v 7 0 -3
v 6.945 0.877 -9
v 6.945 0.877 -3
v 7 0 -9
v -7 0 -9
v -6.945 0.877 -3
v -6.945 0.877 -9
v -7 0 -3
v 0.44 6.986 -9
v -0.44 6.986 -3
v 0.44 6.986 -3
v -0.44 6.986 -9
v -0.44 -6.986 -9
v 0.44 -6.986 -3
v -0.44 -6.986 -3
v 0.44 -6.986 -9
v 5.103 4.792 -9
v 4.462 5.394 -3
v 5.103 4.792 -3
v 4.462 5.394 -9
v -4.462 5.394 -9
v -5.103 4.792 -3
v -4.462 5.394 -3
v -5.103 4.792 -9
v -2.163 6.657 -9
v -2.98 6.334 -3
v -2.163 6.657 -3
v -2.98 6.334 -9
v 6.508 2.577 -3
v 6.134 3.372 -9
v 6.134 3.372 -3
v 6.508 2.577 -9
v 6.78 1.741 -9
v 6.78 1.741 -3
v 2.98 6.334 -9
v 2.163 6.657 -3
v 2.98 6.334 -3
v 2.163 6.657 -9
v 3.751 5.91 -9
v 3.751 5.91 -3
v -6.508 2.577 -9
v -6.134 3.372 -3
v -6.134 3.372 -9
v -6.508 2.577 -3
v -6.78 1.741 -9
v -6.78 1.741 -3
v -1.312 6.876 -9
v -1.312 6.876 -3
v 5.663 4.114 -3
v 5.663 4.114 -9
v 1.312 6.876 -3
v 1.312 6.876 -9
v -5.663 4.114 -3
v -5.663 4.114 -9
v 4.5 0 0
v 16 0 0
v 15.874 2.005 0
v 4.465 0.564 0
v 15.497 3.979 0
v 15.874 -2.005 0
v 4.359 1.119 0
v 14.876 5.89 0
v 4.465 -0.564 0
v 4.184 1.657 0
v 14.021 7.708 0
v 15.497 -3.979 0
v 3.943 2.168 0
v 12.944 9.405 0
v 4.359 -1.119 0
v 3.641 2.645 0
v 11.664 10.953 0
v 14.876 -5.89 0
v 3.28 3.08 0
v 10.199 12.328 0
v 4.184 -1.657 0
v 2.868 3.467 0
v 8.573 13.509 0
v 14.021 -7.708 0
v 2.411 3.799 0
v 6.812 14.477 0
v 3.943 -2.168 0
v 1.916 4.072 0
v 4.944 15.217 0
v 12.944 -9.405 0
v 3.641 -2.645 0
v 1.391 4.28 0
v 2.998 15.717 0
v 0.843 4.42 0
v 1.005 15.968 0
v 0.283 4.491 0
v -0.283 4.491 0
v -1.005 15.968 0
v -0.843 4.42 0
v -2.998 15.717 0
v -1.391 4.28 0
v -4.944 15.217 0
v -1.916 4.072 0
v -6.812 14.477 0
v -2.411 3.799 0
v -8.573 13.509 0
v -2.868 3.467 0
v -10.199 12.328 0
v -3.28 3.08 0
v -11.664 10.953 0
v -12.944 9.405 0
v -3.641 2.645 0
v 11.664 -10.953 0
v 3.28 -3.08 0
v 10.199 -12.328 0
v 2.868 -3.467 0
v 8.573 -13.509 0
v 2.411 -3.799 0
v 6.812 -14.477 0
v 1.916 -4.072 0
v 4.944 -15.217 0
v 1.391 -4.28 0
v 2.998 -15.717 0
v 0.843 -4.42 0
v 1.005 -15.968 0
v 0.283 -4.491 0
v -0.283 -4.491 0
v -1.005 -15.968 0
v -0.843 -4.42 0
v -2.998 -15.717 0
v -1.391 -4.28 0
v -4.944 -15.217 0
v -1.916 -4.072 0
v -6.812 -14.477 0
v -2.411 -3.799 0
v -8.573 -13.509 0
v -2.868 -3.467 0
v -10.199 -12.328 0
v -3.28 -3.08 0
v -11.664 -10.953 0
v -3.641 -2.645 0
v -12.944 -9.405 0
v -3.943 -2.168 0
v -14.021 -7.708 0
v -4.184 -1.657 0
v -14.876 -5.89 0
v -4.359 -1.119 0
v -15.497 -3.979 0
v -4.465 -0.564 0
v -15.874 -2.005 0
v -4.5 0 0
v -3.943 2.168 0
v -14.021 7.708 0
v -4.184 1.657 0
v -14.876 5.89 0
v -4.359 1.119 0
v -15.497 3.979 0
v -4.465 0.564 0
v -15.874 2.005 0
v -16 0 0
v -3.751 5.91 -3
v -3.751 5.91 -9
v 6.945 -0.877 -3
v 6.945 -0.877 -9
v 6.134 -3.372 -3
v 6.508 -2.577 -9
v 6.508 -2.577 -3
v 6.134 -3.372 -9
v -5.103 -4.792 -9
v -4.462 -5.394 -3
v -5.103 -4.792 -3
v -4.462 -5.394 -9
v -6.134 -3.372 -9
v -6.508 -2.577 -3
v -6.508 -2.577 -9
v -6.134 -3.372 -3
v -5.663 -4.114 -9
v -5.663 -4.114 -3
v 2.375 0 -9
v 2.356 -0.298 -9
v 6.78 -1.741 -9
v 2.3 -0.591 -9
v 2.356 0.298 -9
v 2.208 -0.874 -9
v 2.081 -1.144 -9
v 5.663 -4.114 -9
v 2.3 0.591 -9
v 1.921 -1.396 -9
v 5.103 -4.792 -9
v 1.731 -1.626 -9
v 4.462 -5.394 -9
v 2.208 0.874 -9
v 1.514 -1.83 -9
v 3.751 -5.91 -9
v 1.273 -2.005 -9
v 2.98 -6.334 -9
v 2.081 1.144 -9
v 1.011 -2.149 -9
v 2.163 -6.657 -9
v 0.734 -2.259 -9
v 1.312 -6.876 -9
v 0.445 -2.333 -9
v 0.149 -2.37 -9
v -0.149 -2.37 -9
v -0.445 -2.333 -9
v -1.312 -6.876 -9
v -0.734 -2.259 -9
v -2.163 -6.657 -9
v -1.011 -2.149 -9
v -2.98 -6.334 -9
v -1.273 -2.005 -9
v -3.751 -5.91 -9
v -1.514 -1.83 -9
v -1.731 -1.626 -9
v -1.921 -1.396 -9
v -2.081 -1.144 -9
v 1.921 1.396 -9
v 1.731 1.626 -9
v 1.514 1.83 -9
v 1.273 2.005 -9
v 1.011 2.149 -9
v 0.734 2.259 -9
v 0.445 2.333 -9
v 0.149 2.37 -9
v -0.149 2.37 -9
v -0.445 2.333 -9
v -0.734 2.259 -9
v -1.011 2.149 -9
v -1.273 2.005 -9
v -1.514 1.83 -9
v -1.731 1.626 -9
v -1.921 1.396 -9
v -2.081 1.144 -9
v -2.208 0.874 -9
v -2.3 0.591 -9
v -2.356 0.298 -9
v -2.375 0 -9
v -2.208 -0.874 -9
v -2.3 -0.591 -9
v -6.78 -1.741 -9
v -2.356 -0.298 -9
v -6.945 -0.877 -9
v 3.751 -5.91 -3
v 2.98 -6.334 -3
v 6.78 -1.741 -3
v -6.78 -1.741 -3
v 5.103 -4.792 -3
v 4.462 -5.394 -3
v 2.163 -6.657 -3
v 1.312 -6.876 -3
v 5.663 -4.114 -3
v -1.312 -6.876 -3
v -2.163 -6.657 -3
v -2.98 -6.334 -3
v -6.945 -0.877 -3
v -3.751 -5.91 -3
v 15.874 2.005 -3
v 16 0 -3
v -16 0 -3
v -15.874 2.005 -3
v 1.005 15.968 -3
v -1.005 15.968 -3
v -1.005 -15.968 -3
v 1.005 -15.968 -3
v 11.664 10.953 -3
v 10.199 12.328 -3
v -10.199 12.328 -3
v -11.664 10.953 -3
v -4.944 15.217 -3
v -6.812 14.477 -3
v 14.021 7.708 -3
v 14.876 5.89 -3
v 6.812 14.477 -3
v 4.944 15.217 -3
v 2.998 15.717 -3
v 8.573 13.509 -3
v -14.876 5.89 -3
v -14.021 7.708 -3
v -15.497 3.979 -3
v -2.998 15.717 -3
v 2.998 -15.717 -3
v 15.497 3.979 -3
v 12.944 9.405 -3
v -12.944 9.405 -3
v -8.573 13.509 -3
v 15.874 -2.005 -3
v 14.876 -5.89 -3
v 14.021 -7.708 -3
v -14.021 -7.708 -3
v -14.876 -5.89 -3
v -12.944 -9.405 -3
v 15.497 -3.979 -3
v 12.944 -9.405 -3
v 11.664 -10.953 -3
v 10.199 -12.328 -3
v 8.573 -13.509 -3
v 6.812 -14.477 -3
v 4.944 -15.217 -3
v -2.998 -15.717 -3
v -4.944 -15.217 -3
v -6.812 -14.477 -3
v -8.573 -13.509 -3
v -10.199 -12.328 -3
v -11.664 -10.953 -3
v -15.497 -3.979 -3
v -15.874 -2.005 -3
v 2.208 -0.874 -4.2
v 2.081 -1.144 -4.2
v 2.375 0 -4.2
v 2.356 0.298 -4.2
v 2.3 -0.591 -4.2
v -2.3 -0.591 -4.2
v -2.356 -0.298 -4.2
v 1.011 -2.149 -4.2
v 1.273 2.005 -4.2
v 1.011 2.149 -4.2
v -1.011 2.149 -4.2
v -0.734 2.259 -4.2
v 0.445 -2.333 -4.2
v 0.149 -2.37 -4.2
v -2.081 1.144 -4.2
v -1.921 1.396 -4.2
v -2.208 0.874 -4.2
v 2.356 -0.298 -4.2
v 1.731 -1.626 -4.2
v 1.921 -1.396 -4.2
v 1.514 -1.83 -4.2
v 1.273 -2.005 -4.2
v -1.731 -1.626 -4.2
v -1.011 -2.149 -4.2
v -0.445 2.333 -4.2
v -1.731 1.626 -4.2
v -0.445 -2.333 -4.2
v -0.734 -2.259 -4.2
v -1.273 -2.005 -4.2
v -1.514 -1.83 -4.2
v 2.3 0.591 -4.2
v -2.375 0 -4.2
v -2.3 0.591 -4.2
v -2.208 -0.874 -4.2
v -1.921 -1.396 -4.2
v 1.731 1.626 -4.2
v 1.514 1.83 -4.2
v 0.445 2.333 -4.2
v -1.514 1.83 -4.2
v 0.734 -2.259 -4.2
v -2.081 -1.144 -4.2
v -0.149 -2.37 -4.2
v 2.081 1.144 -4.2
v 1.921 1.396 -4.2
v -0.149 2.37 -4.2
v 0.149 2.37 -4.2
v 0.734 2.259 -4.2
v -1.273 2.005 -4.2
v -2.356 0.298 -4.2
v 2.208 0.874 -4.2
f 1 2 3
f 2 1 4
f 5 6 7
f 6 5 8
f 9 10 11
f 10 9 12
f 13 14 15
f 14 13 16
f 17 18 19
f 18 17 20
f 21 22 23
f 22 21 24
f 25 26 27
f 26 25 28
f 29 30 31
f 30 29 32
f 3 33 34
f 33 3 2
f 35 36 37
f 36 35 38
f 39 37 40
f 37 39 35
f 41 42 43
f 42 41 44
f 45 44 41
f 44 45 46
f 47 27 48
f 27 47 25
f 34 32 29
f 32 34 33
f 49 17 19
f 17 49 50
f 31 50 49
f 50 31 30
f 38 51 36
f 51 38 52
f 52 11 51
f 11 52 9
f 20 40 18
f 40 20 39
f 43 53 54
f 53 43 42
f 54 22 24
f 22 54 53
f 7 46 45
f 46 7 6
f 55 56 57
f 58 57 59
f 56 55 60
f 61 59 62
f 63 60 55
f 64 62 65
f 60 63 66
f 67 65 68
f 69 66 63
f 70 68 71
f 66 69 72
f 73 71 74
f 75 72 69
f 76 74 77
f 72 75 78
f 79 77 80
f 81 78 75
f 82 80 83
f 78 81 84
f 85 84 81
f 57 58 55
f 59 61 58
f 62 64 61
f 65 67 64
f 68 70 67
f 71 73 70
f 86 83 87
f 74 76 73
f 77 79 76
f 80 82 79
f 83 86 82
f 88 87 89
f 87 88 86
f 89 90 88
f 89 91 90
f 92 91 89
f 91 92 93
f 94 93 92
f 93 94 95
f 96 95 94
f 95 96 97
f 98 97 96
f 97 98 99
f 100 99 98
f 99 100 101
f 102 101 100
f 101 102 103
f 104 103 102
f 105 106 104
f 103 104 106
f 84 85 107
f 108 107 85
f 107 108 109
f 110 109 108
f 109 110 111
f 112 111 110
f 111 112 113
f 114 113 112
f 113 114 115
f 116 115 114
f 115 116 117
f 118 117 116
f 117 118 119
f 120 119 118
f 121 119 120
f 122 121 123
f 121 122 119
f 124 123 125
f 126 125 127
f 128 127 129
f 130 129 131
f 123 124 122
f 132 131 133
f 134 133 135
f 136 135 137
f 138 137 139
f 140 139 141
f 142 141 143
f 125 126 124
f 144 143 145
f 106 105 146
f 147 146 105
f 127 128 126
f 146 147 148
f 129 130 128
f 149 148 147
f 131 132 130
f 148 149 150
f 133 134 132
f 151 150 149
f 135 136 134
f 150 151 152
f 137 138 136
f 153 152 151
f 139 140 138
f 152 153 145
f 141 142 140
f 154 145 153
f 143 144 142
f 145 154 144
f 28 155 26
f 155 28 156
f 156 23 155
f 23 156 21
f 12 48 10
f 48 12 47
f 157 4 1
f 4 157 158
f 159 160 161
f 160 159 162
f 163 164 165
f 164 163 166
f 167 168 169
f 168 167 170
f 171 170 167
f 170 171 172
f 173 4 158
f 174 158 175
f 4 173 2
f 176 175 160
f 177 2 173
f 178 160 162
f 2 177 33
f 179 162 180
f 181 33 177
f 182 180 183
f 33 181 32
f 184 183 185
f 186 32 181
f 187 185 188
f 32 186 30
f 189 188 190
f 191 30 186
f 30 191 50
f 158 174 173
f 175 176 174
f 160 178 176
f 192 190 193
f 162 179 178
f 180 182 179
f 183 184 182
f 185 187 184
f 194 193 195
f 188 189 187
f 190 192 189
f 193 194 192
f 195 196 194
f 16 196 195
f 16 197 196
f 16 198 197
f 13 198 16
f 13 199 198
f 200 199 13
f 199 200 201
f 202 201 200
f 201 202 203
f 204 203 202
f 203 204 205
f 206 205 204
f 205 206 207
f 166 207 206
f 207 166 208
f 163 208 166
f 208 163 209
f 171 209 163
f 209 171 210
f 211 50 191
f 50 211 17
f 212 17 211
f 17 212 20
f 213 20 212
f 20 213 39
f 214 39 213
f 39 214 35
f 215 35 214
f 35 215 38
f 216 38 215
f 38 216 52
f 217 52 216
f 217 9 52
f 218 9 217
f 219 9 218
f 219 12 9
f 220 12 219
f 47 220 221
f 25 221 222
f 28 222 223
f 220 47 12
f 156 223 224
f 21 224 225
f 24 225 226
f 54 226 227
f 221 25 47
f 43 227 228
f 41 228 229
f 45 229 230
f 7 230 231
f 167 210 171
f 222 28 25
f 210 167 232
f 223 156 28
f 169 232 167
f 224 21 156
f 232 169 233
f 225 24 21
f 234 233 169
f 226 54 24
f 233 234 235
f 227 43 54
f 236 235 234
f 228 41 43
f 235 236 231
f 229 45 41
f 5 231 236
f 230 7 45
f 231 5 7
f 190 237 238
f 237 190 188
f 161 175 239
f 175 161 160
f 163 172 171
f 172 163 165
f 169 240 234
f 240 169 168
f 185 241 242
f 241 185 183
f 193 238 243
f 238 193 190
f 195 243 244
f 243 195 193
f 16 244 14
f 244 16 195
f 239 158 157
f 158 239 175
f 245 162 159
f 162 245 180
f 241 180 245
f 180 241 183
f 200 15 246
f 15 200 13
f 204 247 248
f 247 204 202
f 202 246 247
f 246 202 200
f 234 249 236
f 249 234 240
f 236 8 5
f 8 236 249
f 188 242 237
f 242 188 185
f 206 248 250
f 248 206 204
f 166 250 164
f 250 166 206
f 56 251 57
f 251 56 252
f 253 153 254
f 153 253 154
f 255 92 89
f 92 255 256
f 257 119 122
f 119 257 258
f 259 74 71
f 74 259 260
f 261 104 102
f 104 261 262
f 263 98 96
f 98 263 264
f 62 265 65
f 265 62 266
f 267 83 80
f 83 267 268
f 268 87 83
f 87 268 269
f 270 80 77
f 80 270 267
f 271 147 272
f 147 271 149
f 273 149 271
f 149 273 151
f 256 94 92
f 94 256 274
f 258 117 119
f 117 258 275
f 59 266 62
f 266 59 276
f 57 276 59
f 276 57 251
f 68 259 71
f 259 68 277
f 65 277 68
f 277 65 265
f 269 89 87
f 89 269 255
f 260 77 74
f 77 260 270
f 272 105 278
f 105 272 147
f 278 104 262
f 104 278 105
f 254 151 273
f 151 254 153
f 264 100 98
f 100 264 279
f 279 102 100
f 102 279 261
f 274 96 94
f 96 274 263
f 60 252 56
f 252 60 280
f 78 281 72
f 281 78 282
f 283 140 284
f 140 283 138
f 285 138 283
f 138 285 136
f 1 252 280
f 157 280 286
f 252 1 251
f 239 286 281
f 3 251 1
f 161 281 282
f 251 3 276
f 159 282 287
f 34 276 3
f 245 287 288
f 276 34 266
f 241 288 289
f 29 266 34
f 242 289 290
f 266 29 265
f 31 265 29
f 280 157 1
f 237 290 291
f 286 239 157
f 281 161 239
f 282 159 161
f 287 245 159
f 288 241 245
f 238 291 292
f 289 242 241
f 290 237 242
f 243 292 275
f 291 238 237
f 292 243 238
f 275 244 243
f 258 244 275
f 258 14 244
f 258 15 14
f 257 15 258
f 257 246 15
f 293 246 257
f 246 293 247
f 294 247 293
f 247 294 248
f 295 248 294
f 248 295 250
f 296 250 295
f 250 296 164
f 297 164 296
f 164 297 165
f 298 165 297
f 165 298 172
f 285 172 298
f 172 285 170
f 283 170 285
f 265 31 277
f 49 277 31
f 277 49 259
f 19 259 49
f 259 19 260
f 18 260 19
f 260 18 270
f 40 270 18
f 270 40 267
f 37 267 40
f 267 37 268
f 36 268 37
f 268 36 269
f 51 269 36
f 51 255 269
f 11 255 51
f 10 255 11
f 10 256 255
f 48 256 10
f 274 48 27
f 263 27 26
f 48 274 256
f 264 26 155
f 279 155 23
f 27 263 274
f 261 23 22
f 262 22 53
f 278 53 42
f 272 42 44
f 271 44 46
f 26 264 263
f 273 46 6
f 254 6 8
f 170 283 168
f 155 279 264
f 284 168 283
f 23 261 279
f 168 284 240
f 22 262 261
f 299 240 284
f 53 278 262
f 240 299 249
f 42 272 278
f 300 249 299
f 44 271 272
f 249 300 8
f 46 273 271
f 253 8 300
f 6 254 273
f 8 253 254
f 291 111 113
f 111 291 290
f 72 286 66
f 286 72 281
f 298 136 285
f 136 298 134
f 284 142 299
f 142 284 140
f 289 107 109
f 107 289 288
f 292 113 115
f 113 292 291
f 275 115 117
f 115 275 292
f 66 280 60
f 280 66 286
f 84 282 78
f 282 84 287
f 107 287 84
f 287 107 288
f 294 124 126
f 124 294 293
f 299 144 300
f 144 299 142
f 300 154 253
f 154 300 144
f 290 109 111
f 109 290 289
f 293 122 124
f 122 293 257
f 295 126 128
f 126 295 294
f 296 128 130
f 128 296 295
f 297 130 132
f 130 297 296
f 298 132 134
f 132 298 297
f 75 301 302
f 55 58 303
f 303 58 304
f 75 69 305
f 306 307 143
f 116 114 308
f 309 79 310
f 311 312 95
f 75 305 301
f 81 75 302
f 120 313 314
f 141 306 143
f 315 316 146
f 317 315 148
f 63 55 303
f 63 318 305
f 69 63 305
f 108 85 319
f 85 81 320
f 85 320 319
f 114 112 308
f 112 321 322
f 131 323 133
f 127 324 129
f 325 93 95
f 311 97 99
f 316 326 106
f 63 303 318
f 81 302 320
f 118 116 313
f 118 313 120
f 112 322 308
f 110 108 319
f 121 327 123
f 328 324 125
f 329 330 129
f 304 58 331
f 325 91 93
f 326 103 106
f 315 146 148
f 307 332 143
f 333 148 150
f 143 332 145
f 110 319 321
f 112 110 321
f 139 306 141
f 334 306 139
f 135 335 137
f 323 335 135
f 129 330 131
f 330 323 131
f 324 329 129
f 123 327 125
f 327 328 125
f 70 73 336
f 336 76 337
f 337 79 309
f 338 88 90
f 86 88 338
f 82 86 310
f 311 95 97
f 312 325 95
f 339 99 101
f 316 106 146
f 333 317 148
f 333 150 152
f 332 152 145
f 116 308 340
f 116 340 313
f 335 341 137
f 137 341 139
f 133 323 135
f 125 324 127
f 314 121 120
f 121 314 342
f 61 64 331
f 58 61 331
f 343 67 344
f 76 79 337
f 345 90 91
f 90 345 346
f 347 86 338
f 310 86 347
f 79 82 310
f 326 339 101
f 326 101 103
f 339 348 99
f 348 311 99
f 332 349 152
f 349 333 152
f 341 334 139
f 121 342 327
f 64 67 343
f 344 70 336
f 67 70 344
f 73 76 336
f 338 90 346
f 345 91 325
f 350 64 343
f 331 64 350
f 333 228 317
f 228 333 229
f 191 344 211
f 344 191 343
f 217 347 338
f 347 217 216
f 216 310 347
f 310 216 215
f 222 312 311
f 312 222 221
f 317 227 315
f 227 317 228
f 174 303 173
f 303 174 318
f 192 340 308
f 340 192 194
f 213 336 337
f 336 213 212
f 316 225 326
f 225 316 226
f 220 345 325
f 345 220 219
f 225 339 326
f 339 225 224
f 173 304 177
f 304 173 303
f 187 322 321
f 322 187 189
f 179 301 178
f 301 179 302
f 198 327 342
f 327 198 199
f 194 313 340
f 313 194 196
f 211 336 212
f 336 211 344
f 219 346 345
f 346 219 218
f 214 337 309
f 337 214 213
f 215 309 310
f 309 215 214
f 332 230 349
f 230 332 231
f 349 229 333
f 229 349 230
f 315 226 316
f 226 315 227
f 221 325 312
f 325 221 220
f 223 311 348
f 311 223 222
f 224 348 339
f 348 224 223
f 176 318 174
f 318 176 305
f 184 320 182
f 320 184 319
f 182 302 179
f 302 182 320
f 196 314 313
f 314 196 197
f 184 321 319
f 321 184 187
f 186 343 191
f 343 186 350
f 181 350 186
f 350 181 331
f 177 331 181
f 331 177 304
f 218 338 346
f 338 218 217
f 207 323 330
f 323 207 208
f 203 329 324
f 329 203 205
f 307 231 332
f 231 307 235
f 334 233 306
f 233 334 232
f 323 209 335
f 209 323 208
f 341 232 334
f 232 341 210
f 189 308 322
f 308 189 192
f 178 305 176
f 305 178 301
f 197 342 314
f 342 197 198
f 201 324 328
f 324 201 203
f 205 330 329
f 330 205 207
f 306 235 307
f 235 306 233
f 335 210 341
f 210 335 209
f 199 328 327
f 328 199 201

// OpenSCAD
$fn = 50;


difference() {
	union() {
		translate(v = [0, 0, -9.0000000000]) {
			cylinder(h = 9, r = 7.0000000000);
		}
		translate(v = [0, 0, -3.0000000000]) {
			cylinder(h = 3, r = 16.0000000000);
		}
	}
	union() {
		translate(v = [0, 0, 0]) {
			rotate(a = [0, 0, 0]) {
				difference() {
					union() {
						#translate(v = [0, 0, -9.0000000000]) {
							cylinder(h = 9, r = 2.2500000000);
						}
						#translate(v = [0, 0, -4.2000000000]) {
							cylinder(h = 4.2000000000, r1 = 2.3750000000, r2 = 4.5000000000);
						}
						#translate(v = [0, 0, -9.0000000000]) {
							cylinder(h = 9, r = 2.3750000000);
						}
						#translate(v = [0, 0, -9.0000000000]) {
							cylinder(h = 9, r = 2.2500000000);
						}
					}
					union();
				}
			}
		}
	}
}
